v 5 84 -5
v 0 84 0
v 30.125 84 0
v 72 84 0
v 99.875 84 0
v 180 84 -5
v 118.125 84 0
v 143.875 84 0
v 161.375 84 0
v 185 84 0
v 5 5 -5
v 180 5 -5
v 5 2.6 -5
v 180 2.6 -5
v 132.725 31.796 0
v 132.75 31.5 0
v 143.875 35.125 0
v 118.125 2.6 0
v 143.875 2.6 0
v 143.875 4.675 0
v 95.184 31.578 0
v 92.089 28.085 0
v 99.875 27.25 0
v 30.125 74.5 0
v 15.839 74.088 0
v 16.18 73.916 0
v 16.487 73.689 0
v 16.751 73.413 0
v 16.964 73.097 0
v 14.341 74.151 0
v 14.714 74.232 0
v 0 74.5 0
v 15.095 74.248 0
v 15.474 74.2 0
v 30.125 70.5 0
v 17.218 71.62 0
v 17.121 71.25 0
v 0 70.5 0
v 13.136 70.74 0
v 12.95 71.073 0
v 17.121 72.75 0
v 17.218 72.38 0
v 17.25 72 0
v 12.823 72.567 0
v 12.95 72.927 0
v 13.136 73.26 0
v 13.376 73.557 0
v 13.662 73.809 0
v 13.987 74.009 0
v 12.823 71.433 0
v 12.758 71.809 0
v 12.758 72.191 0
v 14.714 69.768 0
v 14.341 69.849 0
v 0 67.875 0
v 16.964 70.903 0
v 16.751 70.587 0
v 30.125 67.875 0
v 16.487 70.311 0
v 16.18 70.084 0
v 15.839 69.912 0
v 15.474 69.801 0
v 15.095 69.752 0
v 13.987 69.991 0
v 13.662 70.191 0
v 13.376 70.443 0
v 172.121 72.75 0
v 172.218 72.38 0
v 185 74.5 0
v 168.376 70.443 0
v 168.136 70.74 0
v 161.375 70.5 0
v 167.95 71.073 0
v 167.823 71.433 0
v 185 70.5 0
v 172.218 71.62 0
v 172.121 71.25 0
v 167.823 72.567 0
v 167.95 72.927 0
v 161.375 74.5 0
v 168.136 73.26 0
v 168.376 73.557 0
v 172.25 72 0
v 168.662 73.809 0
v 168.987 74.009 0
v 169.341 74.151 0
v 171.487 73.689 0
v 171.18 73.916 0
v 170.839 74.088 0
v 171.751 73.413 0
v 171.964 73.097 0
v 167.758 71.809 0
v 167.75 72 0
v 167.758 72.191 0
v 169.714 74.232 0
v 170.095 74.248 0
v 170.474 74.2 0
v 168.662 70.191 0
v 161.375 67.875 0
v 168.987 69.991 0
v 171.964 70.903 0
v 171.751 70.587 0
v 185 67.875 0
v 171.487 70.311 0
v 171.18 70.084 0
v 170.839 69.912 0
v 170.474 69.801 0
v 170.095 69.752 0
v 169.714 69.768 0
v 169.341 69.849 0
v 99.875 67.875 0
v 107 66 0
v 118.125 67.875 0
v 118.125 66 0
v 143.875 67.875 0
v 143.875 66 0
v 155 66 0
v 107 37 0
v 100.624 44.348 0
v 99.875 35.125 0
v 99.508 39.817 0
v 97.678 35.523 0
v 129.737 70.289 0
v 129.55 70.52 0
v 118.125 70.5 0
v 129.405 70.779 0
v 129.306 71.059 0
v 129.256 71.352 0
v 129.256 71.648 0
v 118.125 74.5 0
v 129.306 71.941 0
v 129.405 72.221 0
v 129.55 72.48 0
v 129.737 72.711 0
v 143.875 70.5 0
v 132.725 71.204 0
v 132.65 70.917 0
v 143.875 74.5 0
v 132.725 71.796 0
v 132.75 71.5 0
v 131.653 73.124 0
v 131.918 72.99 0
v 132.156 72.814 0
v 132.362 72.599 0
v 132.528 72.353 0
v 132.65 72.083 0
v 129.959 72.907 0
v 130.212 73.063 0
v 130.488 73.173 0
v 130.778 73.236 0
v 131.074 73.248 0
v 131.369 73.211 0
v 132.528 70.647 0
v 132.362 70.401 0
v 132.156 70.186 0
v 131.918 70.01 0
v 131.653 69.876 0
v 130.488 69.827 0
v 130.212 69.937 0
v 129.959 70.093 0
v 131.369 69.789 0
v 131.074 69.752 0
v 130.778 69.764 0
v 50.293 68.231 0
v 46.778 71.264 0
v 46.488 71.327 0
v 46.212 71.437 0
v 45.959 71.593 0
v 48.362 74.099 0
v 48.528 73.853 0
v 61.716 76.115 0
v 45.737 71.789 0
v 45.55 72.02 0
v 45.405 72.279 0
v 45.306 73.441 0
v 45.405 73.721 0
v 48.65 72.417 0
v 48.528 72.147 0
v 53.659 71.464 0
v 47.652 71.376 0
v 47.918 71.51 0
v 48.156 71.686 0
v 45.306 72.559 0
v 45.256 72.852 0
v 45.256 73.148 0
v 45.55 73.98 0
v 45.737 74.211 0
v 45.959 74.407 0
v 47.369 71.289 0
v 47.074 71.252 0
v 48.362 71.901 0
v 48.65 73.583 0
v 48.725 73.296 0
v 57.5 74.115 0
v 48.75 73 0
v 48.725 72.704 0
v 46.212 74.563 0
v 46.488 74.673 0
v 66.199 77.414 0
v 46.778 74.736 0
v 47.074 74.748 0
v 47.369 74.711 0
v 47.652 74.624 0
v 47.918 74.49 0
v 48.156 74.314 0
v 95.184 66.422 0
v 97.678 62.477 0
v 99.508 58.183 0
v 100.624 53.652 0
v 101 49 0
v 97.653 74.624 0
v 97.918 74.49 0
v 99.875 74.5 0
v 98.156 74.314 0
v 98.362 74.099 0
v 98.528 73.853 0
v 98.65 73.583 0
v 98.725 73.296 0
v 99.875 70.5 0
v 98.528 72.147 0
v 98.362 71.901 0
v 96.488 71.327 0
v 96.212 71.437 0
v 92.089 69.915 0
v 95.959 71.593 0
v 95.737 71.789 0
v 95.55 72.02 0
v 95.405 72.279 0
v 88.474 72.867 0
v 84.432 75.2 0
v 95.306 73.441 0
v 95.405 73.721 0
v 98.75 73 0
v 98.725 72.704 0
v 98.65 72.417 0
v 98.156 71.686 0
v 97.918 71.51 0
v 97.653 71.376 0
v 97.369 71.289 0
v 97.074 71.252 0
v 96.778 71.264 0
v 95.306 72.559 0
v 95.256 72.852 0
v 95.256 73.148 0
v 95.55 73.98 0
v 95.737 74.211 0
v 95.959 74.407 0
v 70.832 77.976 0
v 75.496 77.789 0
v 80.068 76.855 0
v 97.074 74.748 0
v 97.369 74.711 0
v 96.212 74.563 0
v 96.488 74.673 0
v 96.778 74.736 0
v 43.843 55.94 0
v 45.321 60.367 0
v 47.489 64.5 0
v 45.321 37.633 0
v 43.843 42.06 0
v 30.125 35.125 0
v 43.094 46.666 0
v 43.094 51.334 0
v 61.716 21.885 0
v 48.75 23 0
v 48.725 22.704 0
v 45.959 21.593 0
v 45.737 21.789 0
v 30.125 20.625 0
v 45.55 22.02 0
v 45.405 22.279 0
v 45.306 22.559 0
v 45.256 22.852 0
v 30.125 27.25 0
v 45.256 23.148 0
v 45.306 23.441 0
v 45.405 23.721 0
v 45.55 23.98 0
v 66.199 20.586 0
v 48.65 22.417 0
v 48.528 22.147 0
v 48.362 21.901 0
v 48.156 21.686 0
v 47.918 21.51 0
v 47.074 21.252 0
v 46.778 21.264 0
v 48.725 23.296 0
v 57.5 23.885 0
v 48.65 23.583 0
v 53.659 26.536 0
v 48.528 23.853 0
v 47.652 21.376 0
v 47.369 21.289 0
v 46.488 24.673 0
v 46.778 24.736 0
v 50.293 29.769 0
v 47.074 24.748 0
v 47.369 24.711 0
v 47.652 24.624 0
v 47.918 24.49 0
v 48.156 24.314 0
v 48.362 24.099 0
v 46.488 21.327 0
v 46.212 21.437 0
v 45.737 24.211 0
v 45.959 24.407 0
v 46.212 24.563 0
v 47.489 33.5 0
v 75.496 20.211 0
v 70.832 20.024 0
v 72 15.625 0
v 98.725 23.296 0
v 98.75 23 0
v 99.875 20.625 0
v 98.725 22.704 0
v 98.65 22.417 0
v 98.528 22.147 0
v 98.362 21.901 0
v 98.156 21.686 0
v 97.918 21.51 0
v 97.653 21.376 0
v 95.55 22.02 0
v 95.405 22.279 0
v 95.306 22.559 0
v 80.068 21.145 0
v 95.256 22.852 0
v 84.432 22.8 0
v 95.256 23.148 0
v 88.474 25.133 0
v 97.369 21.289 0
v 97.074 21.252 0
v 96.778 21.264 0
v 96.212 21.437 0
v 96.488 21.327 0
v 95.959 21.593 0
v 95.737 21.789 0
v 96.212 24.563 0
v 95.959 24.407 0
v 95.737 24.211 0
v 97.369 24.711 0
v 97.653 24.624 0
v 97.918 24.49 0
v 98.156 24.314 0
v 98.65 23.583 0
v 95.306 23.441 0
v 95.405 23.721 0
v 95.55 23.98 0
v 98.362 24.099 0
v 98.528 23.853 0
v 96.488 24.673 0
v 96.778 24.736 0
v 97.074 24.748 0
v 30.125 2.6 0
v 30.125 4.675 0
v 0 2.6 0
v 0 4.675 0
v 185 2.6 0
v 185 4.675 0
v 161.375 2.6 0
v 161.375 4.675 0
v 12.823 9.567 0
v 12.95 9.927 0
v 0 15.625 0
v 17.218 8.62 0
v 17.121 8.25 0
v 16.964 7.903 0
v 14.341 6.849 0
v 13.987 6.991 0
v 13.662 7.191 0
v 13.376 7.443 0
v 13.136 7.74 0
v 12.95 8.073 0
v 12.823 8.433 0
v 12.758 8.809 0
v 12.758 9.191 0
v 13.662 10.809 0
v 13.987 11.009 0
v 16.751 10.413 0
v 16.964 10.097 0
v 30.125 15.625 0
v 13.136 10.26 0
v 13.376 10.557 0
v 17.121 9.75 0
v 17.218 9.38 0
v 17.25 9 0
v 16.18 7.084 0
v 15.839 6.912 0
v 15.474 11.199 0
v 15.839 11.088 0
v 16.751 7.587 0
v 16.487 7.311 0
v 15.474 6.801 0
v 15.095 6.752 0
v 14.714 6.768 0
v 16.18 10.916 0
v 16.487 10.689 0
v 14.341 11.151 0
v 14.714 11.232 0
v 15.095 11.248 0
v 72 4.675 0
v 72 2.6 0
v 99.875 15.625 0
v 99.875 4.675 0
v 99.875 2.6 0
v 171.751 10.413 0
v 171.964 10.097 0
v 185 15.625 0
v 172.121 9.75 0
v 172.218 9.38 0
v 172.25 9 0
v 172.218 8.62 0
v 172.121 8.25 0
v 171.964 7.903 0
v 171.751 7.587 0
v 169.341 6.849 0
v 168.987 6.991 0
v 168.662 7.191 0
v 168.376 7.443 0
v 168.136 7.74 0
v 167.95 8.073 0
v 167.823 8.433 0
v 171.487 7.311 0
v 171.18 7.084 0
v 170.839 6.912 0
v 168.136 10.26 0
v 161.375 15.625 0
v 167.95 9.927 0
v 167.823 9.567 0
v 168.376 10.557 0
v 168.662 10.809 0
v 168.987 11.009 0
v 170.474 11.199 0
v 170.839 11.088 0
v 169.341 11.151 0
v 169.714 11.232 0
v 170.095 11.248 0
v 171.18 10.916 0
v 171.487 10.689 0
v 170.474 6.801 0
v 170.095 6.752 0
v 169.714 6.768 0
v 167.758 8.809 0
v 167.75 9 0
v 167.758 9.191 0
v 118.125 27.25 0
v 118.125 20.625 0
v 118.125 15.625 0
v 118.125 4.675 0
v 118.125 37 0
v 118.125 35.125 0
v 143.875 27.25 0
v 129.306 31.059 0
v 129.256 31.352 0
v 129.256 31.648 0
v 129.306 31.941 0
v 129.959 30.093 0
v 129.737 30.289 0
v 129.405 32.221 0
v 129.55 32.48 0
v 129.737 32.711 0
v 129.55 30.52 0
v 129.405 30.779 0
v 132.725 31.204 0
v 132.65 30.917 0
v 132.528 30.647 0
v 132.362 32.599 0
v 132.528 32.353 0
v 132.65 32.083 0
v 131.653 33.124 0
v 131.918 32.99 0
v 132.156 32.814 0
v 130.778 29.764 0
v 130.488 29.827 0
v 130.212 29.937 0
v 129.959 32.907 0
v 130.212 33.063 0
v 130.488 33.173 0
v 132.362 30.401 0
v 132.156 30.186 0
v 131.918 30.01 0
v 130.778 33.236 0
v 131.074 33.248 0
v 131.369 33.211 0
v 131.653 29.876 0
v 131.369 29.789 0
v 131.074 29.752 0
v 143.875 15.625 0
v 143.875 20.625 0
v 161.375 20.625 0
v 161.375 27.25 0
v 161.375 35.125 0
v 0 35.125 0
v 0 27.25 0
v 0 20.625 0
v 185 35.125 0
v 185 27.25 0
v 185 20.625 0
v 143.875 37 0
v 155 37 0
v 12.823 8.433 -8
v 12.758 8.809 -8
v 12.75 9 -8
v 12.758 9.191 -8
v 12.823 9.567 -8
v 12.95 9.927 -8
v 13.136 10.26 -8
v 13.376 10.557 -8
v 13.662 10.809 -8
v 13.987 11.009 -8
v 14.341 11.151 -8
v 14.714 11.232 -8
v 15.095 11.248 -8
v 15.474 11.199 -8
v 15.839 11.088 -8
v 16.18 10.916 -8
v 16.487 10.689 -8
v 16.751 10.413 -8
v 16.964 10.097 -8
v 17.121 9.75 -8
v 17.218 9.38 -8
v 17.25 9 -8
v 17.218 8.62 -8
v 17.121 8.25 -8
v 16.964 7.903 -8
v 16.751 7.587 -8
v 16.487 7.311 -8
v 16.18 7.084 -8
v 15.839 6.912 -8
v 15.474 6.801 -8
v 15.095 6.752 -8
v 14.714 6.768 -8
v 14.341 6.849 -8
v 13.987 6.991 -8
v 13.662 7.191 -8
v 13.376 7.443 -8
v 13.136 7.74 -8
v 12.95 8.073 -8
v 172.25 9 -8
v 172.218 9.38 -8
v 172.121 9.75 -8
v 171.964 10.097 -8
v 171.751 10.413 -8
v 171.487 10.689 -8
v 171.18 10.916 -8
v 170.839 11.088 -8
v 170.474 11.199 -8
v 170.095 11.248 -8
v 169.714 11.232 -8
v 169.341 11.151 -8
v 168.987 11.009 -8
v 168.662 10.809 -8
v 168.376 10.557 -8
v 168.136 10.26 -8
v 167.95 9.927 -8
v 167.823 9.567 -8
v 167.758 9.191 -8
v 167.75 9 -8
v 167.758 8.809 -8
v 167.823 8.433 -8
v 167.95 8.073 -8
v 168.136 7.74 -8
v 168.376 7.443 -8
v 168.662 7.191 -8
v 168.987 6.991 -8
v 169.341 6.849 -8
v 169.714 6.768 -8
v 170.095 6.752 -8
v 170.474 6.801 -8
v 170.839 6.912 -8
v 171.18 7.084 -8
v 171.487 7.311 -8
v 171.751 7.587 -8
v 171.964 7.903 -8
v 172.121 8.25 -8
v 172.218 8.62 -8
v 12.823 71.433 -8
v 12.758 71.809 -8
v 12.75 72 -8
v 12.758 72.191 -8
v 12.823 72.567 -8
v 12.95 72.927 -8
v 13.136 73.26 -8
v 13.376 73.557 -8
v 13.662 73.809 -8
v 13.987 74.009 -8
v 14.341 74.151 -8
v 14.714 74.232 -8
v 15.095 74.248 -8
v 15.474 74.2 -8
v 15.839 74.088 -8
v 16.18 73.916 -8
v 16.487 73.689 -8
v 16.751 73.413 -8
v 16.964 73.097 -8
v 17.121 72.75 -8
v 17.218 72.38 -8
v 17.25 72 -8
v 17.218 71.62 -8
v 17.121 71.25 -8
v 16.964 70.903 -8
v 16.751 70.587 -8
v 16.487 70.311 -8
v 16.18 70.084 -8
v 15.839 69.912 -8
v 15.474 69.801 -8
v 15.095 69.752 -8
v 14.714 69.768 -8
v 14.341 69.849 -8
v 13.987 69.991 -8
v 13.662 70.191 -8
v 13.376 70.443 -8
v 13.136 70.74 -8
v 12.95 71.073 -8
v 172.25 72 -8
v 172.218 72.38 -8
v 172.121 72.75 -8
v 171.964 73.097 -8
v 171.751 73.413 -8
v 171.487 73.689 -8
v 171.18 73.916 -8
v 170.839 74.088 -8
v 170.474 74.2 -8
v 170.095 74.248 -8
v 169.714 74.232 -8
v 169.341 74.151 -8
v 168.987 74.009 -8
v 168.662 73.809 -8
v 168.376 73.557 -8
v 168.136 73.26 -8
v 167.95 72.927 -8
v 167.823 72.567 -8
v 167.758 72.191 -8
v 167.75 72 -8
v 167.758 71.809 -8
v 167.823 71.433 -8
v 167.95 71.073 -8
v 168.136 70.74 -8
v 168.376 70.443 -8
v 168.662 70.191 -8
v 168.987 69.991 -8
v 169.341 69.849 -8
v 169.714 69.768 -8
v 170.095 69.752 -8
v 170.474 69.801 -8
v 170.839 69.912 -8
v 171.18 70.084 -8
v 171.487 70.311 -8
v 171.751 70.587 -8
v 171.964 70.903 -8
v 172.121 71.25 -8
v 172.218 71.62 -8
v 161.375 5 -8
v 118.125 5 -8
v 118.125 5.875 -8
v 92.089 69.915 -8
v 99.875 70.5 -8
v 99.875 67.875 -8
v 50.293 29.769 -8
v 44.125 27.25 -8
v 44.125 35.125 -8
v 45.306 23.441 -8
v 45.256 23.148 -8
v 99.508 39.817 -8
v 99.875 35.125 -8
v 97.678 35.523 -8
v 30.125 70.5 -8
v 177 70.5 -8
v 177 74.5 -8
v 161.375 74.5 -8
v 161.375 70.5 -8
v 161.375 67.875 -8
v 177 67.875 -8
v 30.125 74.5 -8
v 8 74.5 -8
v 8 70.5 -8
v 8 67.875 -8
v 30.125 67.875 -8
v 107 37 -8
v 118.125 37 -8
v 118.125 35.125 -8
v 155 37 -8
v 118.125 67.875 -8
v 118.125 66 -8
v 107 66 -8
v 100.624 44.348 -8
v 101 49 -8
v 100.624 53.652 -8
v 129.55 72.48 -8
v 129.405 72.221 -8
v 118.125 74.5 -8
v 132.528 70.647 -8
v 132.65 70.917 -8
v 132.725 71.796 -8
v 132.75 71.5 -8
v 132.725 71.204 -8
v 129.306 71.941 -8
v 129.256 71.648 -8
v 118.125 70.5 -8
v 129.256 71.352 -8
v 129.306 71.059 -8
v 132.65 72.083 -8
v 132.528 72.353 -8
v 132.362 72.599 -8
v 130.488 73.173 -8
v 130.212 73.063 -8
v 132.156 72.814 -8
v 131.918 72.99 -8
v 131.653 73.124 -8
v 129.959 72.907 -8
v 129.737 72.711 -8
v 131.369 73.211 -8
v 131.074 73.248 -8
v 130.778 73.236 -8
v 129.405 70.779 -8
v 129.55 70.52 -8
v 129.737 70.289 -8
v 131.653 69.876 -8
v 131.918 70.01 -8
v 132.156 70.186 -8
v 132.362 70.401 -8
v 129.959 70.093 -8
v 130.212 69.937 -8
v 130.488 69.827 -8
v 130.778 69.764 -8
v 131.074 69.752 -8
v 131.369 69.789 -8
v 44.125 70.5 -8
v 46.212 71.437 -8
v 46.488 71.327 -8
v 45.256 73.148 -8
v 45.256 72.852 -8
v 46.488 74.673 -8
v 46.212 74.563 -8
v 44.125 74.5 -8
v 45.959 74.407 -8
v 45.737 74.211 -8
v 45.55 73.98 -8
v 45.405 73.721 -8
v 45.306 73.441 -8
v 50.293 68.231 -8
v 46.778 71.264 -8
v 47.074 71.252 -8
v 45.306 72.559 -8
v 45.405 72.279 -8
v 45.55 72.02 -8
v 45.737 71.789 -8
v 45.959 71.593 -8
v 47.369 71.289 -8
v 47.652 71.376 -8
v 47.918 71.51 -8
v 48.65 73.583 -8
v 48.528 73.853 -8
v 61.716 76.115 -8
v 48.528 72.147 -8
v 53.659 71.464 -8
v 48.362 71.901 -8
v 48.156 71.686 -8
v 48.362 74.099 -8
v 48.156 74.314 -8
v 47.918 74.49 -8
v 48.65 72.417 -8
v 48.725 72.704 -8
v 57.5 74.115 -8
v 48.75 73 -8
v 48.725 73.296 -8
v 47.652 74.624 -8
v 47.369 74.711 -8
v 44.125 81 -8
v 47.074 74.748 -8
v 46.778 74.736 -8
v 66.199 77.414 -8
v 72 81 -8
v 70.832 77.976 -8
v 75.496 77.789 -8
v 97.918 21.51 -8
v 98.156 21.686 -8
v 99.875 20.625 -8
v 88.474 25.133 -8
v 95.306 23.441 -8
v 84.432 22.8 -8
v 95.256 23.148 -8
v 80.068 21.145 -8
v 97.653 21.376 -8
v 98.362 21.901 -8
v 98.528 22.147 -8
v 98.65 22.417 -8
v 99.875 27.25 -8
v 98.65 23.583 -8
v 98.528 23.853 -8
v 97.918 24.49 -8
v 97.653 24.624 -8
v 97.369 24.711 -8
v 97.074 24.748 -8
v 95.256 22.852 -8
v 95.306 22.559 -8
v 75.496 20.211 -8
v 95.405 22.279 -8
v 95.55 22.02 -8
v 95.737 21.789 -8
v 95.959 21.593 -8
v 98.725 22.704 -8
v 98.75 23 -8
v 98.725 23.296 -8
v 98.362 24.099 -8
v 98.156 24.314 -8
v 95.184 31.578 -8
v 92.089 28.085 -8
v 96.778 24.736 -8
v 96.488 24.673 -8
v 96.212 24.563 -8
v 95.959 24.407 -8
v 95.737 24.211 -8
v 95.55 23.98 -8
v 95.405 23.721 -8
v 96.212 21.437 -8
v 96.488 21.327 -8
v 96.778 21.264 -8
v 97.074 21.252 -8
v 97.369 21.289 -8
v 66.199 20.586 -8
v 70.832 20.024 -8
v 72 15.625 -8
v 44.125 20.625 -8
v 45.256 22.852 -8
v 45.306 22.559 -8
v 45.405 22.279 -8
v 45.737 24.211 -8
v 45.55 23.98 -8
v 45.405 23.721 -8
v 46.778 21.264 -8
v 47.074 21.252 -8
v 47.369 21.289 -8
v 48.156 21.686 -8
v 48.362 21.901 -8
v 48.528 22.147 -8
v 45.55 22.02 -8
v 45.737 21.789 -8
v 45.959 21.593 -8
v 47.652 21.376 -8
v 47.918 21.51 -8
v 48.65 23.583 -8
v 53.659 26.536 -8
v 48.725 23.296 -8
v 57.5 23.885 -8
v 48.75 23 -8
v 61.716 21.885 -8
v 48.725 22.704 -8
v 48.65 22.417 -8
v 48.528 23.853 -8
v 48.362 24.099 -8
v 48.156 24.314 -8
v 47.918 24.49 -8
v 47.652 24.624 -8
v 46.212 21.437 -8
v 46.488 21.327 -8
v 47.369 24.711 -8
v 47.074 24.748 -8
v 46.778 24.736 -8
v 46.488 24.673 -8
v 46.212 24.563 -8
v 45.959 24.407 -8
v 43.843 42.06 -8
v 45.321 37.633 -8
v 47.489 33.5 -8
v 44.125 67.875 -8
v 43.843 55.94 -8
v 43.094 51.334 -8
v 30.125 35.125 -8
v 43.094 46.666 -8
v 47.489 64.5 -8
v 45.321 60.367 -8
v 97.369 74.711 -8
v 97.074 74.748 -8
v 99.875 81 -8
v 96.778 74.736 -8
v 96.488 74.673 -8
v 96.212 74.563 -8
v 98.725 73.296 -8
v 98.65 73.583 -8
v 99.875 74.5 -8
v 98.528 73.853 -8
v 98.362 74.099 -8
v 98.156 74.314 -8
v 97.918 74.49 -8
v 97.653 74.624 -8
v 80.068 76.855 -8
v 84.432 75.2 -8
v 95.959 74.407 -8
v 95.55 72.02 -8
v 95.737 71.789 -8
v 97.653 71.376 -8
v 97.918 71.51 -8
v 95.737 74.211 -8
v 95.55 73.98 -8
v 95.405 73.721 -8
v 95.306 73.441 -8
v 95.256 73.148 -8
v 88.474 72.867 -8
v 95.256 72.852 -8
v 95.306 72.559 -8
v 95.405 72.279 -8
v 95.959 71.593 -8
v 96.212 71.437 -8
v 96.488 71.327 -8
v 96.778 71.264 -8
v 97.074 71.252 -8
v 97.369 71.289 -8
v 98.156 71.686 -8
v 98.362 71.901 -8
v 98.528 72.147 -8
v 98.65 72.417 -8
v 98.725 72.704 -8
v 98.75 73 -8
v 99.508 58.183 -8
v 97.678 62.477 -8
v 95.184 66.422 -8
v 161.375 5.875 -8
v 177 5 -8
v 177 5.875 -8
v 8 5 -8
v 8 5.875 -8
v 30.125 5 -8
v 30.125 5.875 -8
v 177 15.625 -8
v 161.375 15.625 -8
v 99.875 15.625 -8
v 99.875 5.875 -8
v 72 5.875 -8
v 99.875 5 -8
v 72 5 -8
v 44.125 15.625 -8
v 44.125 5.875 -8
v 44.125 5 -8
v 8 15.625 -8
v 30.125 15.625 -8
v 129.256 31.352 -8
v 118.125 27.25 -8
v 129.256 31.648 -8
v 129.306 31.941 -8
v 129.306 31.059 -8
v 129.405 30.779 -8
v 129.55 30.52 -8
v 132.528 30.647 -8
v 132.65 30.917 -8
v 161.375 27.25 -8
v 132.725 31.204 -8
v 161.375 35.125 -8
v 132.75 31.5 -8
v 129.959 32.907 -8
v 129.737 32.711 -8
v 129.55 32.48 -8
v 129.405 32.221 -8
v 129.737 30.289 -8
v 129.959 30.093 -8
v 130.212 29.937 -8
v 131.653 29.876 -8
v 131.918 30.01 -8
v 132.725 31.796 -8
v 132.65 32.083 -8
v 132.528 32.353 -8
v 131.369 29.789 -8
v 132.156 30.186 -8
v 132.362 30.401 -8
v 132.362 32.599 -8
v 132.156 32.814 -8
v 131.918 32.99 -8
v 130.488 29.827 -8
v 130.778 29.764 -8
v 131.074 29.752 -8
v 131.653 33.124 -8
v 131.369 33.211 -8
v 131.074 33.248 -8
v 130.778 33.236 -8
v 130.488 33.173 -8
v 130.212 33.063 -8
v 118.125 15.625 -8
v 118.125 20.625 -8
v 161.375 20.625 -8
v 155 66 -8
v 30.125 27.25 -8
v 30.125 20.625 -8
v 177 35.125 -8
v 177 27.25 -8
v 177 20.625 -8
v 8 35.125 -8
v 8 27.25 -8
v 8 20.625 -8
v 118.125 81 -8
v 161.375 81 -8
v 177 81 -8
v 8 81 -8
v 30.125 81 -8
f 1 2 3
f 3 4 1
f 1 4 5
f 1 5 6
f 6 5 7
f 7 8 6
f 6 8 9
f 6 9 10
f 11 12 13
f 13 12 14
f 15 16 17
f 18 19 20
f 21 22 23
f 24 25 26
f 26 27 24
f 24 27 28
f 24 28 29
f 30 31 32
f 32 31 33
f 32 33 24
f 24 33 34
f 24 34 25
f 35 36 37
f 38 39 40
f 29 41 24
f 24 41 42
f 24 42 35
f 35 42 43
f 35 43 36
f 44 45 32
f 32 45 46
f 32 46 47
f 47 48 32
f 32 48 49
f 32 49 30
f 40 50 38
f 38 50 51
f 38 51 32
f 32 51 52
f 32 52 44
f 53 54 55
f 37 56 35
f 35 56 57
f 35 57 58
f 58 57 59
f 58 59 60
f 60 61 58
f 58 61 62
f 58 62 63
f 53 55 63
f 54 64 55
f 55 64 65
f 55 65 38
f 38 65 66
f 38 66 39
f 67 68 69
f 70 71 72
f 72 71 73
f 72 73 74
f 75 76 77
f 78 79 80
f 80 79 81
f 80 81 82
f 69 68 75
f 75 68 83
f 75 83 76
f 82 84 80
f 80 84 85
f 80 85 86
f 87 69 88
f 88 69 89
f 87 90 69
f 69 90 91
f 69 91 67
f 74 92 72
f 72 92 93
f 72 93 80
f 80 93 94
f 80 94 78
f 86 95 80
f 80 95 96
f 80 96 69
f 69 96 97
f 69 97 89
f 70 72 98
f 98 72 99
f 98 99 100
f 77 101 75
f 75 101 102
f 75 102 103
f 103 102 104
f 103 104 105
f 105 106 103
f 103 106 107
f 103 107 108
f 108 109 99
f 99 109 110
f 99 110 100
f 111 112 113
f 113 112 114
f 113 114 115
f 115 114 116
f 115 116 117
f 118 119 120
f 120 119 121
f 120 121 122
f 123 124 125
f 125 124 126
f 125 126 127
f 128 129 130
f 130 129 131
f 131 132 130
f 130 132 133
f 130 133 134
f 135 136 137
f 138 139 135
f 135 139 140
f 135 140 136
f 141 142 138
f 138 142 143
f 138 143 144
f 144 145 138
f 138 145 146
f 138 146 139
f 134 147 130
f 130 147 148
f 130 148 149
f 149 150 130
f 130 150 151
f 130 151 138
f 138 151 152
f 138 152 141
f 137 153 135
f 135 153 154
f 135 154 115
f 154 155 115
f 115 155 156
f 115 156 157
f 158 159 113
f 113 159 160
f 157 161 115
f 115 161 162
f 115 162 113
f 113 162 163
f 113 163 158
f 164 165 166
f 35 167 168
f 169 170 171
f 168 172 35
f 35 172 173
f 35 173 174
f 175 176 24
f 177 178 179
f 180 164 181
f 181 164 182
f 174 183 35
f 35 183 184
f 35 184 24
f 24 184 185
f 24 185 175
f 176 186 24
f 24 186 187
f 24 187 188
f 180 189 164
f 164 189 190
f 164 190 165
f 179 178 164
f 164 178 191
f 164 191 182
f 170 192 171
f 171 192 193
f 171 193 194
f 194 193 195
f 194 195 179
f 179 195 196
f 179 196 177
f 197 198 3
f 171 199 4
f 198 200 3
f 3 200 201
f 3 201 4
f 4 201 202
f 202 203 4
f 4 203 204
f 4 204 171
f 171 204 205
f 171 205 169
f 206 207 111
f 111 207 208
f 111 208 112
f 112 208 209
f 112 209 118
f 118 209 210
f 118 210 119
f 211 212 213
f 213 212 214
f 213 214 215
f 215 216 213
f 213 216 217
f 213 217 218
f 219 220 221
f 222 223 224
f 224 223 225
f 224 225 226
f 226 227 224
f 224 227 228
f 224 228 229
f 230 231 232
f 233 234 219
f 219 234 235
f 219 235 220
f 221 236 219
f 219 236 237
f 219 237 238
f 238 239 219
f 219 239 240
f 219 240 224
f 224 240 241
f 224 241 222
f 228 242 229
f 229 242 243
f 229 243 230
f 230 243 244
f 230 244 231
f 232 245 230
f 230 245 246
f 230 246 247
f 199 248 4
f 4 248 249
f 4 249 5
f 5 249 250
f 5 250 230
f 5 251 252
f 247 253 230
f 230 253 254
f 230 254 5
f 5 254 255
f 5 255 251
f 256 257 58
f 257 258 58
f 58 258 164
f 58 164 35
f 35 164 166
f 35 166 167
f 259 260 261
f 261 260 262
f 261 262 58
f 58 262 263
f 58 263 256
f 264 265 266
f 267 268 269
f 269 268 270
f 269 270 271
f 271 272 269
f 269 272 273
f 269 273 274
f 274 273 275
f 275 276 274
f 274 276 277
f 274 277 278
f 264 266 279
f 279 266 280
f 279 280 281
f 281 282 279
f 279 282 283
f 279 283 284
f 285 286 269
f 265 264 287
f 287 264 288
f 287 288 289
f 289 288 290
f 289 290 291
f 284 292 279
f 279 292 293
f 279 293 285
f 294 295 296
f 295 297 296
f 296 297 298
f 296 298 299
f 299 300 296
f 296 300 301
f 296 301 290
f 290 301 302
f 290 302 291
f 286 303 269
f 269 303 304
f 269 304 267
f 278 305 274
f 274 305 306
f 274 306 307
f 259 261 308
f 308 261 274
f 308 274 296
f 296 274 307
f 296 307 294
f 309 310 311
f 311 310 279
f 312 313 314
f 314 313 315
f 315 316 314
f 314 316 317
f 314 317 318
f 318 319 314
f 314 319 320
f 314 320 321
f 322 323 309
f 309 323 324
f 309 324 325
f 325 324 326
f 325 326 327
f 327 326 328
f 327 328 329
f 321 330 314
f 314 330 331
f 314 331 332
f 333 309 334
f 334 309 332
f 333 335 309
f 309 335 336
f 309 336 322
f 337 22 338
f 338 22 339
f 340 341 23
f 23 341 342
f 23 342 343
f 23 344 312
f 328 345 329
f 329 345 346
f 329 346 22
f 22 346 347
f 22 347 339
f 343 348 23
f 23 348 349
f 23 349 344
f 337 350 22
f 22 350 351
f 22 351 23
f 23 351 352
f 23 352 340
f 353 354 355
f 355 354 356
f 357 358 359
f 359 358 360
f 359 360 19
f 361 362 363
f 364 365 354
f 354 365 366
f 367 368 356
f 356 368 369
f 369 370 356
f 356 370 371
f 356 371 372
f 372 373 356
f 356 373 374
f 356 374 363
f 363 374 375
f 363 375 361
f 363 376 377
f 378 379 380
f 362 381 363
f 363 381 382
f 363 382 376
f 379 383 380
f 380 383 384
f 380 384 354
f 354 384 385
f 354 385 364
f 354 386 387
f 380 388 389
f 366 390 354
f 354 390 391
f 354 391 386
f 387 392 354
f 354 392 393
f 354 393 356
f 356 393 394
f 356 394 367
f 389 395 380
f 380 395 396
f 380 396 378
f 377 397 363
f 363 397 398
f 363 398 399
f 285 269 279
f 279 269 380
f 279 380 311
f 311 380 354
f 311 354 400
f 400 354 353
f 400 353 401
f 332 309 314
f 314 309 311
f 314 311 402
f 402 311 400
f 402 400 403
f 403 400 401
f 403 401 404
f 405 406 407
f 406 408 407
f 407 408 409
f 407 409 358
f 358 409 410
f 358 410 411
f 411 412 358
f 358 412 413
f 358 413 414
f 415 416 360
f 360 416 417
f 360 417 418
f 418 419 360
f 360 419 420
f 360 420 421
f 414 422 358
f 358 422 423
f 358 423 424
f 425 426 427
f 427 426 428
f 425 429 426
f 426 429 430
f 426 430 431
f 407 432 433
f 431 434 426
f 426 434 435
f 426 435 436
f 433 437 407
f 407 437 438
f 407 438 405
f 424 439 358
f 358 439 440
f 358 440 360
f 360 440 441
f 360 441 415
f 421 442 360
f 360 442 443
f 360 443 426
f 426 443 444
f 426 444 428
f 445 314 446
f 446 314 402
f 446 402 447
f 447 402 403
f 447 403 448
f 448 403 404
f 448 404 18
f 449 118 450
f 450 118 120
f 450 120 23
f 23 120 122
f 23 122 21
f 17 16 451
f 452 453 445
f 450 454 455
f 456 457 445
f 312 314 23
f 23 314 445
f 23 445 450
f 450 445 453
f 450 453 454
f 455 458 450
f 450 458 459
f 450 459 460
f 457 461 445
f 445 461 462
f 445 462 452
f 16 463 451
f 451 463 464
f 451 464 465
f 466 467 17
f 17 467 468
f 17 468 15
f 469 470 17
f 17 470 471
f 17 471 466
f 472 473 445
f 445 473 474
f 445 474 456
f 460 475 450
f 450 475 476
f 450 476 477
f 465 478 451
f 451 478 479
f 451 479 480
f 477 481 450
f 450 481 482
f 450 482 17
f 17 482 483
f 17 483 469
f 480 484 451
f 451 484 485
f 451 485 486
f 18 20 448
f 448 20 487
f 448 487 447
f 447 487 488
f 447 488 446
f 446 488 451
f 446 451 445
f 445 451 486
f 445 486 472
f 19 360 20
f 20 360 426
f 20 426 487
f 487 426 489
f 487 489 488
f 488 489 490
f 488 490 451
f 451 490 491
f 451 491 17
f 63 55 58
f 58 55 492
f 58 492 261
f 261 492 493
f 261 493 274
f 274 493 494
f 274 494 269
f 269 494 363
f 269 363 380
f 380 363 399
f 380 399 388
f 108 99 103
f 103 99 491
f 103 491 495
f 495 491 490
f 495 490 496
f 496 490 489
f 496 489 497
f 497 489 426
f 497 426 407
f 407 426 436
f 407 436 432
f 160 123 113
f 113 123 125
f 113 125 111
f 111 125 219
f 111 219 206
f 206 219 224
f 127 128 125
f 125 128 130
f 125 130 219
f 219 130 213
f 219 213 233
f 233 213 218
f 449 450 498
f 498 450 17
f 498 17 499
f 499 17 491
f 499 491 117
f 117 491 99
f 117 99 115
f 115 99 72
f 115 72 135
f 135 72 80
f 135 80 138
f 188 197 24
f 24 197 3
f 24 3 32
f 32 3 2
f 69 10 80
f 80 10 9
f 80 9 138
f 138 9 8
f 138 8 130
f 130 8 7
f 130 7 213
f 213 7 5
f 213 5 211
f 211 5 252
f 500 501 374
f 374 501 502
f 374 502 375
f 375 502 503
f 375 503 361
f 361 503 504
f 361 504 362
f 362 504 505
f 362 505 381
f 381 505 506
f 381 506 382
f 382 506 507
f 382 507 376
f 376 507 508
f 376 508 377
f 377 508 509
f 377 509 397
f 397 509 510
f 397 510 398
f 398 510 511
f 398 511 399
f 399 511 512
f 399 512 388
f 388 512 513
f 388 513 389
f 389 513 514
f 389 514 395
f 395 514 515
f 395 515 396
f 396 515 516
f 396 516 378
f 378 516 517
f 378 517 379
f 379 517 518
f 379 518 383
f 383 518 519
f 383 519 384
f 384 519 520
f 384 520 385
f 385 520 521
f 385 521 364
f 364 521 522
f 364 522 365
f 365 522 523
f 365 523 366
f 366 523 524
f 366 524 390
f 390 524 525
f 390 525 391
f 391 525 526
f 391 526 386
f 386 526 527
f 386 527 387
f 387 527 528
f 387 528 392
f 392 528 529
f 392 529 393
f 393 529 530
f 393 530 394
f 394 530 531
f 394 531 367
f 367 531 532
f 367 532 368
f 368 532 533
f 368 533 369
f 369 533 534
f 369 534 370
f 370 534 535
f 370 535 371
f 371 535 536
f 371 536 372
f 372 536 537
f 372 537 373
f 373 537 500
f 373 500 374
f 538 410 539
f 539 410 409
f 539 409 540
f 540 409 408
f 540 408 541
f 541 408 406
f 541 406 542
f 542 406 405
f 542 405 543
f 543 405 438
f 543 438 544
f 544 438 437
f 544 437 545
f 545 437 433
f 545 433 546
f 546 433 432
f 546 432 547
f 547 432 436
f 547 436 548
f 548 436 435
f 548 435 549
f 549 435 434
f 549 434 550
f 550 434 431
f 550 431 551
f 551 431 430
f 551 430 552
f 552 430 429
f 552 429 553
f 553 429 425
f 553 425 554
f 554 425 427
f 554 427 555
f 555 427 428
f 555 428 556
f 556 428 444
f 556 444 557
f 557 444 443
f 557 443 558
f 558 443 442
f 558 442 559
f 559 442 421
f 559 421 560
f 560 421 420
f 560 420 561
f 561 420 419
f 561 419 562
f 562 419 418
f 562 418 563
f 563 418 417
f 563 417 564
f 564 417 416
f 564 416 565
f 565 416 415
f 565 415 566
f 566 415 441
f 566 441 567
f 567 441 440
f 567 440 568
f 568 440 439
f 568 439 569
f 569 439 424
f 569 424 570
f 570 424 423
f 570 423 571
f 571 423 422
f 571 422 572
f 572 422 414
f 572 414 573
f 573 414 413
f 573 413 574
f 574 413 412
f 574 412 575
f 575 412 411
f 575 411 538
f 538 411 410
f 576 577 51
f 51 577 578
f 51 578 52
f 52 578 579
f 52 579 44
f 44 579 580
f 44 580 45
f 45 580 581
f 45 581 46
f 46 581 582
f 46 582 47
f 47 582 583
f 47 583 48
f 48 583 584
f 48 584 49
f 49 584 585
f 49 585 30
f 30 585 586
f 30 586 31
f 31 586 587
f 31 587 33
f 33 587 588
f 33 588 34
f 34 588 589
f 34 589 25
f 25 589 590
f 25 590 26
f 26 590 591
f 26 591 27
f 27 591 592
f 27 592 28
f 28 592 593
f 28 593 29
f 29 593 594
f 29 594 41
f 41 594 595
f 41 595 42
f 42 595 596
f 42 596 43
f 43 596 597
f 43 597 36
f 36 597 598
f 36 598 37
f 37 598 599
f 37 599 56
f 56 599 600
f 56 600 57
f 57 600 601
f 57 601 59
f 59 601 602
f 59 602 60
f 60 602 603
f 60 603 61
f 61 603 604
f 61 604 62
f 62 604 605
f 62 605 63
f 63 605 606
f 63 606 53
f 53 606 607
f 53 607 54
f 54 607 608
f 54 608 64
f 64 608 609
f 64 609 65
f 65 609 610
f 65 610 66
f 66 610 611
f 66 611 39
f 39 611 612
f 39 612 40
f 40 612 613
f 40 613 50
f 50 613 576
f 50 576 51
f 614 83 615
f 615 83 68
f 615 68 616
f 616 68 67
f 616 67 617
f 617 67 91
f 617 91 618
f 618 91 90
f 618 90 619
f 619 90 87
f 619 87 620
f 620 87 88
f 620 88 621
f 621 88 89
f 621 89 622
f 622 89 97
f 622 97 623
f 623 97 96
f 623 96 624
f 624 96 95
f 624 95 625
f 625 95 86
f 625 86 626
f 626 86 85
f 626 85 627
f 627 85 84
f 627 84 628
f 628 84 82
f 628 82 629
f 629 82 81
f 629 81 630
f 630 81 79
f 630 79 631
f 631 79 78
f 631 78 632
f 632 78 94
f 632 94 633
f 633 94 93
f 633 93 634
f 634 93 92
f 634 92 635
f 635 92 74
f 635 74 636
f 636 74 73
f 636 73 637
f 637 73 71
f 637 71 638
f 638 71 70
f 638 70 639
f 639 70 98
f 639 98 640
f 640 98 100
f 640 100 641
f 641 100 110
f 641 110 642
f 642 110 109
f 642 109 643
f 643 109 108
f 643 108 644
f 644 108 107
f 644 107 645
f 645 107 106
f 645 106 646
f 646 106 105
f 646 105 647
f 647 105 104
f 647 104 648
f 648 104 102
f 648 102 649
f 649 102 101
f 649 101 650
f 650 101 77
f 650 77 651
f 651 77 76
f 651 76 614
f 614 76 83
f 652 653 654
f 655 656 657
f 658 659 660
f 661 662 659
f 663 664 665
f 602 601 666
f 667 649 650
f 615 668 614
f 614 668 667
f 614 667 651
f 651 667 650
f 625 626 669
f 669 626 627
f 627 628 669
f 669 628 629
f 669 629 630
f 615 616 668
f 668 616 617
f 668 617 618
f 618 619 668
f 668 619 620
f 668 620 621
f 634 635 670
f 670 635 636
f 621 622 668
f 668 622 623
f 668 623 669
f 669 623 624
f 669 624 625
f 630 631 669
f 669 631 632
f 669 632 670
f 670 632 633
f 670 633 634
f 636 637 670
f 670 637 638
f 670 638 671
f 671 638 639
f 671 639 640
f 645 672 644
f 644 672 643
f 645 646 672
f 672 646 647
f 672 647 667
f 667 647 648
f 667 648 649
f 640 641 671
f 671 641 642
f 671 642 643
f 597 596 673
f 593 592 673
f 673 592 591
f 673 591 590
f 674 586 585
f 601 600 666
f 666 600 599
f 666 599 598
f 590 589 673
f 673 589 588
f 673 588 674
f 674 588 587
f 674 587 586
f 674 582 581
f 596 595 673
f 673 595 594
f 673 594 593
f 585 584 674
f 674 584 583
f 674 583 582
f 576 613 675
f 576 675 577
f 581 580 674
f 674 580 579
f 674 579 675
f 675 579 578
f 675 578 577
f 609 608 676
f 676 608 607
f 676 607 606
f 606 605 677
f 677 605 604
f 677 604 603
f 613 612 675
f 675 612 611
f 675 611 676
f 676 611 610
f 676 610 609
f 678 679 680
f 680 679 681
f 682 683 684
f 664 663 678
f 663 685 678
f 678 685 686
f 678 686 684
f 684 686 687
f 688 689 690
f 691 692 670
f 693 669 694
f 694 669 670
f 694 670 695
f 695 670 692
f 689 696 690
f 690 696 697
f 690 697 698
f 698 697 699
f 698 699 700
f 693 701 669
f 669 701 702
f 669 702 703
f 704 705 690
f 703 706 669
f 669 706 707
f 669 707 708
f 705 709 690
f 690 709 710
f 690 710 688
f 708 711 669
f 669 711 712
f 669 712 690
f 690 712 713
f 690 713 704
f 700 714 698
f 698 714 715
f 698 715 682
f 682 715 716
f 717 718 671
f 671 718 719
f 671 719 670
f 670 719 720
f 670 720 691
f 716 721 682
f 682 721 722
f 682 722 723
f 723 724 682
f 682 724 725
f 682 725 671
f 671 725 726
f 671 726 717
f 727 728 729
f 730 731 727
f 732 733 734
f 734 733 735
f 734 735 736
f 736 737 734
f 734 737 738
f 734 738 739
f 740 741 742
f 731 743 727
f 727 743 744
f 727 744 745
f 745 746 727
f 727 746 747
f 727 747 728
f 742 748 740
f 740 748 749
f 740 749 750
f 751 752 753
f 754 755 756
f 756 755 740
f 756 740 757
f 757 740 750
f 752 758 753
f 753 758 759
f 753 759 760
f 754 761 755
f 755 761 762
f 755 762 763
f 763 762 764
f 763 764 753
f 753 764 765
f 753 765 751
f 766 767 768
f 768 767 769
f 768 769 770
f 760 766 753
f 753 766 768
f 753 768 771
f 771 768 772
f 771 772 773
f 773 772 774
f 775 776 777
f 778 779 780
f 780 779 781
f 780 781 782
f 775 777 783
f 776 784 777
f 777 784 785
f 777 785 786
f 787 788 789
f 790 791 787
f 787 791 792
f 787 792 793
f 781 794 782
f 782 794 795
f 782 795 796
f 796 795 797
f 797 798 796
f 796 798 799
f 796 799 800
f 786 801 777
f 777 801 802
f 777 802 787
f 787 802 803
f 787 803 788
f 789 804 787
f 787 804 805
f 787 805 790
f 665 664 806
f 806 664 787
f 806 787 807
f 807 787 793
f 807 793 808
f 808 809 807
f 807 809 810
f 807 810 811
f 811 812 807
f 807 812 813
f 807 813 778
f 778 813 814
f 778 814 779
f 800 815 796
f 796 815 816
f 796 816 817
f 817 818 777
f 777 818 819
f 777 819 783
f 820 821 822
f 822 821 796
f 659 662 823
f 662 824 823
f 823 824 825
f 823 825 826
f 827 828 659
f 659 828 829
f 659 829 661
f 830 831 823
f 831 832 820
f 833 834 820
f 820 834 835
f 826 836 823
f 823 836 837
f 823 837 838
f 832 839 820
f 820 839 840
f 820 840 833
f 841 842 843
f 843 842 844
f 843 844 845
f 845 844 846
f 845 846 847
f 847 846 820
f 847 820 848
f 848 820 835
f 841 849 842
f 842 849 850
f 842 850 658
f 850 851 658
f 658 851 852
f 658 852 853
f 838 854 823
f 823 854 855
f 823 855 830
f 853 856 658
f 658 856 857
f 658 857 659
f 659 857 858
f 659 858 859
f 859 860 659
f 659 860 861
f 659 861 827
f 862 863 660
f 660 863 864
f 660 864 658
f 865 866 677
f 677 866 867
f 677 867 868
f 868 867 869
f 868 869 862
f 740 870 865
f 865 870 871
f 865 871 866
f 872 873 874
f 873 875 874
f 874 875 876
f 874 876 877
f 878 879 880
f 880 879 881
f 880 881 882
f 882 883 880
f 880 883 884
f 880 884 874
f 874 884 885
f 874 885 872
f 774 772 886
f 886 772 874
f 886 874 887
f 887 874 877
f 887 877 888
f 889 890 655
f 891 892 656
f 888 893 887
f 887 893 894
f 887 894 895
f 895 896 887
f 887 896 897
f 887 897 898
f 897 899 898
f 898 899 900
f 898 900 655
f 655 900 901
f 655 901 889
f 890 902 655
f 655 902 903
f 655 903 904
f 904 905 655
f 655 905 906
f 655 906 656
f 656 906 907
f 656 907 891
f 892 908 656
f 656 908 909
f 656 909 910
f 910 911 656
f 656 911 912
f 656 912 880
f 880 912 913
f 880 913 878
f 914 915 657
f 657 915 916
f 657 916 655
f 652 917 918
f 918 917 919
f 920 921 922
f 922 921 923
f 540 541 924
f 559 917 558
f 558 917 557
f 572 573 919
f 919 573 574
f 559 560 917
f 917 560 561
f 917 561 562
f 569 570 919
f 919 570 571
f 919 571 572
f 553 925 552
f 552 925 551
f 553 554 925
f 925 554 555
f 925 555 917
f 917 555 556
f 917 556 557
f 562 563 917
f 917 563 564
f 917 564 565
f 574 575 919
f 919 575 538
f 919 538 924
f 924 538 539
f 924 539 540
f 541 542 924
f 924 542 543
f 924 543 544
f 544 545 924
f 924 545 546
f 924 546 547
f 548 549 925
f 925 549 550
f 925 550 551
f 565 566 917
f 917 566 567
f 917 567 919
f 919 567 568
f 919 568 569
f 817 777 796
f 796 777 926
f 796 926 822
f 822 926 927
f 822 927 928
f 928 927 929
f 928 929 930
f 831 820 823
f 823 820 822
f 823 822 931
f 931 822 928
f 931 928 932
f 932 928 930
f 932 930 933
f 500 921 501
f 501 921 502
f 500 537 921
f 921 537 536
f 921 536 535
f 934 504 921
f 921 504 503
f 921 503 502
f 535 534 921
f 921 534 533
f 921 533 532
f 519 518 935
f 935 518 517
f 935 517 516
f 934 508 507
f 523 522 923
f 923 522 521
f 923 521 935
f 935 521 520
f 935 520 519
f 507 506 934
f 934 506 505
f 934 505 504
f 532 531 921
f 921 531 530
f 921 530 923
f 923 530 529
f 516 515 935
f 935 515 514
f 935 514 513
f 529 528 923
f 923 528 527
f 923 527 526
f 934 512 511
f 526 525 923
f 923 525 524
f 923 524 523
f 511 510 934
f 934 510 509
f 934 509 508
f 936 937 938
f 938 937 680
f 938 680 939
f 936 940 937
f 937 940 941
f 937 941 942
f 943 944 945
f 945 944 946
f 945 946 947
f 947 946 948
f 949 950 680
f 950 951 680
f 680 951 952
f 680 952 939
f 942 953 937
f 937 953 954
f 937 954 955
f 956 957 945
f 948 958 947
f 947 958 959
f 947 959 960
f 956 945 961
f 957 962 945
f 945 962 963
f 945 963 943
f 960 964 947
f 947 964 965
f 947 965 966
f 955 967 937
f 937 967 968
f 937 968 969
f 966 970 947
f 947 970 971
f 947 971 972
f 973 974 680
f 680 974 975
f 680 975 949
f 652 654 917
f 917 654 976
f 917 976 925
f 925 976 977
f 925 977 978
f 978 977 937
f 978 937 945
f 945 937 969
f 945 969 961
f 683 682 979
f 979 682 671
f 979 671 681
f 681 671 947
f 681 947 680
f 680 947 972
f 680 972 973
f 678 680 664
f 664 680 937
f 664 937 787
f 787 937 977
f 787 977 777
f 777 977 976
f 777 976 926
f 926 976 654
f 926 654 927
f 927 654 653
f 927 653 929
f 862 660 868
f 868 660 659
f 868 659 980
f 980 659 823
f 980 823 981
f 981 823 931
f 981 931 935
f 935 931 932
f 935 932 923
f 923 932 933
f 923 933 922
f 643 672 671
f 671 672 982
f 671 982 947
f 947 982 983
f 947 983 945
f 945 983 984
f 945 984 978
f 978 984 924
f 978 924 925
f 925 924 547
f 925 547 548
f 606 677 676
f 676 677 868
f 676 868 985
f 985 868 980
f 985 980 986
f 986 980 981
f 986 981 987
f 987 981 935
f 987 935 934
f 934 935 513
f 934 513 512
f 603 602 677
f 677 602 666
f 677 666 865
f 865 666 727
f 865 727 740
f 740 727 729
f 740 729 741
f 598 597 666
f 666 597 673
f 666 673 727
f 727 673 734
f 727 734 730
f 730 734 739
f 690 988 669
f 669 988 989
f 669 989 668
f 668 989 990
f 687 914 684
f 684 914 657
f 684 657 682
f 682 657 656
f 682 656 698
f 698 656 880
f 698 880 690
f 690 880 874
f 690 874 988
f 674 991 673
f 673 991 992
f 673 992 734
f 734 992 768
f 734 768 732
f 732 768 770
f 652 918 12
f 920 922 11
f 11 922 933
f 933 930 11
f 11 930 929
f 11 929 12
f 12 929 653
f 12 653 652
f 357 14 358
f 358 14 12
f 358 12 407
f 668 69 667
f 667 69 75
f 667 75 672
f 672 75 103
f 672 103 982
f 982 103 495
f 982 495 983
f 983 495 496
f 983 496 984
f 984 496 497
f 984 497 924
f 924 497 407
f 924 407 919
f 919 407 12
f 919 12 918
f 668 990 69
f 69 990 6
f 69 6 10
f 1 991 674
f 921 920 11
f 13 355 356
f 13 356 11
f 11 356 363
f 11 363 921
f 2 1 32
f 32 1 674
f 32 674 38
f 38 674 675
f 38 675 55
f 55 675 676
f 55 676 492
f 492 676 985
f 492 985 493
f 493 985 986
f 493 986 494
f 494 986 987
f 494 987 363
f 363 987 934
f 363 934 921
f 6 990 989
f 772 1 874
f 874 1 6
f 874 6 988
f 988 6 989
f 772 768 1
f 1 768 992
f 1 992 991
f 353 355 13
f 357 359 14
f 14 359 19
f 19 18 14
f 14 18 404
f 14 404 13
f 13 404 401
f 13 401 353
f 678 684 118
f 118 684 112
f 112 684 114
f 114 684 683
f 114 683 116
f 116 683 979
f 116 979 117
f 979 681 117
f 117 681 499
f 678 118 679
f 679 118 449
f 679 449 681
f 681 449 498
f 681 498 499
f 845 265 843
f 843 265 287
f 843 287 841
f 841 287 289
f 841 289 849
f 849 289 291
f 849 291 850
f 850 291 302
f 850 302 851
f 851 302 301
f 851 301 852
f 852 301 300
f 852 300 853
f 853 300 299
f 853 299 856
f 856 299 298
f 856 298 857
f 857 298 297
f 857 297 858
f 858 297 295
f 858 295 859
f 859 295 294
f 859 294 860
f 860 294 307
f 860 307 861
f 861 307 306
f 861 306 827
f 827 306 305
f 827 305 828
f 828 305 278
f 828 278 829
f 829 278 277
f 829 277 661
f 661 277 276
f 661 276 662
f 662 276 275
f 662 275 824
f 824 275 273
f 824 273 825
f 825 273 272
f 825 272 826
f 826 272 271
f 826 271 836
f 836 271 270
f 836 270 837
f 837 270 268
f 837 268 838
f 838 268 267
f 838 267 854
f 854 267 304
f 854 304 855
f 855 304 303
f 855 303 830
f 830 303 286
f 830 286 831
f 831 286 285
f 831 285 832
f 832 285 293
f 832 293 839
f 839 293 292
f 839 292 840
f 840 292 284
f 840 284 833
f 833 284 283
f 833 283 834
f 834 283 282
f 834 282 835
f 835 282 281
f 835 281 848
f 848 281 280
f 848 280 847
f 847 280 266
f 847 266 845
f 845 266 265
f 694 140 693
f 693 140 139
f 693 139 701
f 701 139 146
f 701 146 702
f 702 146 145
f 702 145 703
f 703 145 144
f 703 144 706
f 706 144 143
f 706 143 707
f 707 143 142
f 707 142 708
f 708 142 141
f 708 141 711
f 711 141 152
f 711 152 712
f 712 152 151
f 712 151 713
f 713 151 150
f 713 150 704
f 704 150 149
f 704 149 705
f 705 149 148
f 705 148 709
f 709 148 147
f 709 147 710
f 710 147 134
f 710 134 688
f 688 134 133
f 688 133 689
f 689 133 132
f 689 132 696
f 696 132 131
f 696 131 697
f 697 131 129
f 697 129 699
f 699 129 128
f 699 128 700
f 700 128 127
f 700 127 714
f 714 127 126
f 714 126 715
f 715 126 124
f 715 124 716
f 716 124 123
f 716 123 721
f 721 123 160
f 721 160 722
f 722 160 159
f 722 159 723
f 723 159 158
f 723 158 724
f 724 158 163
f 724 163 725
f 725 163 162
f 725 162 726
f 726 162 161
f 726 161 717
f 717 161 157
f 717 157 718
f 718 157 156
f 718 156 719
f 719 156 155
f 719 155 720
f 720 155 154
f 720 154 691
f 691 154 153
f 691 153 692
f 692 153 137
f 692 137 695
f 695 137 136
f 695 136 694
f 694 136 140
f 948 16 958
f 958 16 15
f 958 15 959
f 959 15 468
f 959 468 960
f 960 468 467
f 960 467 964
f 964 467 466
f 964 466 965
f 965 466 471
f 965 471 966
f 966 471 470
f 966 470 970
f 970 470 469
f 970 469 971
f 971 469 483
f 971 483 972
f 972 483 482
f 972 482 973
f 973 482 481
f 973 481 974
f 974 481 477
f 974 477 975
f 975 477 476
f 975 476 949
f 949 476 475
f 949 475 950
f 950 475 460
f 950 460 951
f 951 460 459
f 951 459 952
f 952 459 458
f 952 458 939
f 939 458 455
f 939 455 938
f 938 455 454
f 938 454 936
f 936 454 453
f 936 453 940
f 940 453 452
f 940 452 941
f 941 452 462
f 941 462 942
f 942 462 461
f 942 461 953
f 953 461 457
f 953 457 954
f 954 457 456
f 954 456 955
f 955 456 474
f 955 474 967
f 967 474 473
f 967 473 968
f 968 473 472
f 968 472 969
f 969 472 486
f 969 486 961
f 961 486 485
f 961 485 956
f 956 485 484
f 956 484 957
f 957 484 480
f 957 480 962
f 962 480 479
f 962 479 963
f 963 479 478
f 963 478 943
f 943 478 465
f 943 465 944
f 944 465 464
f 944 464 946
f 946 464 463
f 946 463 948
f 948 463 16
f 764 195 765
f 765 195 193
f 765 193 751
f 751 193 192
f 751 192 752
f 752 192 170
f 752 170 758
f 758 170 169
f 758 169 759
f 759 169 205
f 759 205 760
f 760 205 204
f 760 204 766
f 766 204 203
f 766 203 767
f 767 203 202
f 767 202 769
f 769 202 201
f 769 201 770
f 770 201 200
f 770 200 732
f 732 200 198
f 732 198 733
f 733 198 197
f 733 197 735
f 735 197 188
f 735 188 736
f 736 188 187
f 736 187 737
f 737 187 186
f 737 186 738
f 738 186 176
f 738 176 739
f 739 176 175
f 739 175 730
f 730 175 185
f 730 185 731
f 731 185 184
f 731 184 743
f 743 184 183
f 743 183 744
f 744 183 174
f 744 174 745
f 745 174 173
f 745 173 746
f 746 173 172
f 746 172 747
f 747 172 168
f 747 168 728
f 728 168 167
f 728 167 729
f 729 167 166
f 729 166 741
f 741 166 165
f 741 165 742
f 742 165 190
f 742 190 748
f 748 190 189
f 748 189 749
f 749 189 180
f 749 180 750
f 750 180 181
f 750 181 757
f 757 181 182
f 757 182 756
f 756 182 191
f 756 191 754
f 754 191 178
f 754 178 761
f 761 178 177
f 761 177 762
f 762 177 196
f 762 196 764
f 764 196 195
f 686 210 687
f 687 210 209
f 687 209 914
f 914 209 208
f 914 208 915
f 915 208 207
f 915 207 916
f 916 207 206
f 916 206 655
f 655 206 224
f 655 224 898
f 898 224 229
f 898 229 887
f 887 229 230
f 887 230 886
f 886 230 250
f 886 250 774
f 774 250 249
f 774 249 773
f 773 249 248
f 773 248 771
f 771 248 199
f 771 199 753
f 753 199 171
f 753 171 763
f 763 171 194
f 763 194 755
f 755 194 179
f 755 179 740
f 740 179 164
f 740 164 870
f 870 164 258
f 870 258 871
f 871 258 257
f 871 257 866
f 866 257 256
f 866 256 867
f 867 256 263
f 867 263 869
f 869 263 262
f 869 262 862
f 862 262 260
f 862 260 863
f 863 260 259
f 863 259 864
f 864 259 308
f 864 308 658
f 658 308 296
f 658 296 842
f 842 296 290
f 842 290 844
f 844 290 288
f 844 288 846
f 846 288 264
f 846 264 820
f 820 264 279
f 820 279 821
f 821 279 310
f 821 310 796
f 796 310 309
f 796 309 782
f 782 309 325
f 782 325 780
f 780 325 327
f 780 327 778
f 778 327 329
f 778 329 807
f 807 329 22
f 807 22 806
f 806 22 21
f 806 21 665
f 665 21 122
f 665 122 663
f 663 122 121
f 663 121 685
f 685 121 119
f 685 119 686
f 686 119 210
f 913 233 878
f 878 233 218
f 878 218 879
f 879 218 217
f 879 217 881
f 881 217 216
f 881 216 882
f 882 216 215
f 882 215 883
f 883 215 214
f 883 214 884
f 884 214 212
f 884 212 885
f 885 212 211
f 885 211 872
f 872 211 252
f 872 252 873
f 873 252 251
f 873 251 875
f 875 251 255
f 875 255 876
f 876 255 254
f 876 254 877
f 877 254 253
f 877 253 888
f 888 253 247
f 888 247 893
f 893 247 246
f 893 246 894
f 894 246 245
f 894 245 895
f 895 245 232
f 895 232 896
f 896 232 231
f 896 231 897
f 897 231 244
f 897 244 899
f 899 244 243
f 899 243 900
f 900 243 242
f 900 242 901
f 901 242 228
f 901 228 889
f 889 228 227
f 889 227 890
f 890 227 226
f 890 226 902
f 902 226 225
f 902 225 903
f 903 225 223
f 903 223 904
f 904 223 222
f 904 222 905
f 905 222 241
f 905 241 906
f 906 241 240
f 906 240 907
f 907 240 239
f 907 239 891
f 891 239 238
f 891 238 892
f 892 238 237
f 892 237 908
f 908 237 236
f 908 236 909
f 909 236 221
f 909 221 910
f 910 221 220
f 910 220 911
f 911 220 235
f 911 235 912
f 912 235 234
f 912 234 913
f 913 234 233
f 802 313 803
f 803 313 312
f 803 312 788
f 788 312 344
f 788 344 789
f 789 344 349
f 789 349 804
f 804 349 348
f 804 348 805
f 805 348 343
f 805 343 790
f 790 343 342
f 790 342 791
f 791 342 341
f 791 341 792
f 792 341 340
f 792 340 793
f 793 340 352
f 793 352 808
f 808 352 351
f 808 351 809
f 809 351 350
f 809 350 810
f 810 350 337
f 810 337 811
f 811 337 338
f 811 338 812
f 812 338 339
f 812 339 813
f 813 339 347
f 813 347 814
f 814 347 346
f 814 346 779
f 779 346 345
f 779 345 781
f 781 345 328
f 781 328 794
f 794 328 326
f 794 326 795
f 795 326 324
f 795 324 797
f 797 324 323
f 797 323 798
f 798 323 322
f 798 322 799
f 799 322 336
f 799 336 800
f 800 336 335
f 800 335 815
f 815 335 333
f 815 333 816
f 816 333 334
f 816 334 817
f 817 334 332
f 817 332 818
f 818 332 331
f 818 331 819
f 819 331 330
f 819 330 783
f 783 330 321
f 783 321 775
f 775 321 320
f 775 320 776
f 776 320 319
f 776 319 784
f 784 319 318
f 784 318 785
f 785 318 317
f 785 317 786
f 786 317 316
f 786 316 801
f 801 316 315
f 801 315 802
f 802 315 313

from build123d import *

# Parameters (mm, degrees)
SKETCH1_W           = 185
SKETCH1_H           = 84
SKETCH1_R           = 2.25
BOSS_EXTRUDE1_DEPTH = 5
SKETCH2_W           = 185
SKETCH2_H           = 79
SKETCH2_R           = 2.25
BOSS_EXTRUDE2_DEPTH = 3
CHAMFER1_SIZE       = 8
CHAMFER3_SIZE       = 3
SKETCH3_W           = 7.071067812
SKETCH3_H           = 2.6
CUT_EXTRUDE1_DEPTH  = 221.270985121
SKETCH4_R           = 29
SKETCH4_R_2         = 1.75
SKETCH4_W           = 48
SKETCH4_H           = 29
CUT_EXTRUDE2_DEPTH  = 204.334699449


with BuildPart() as part:
    # Sketch1 → Boss-Extrude1 (new body)
    with BuildSketch(Plane.XY):
        with Locations((92.5, 42)):
            Rectangle(SKETCH1_W, SKETCH1_H)
        with Locations((15, 9)):
            Circle(SKETCH1_R, mode=Mode.SUBTRACT)
        with Locations(Location((170, 9, 0), (0, 0, 180))):
            Circle(SKETCH1_R, mode=Mode.SUBTRACT)
        with Locations((15, 72)):
            Circle(SKETCH1_R, mode=Mode.SUBTRACT)
        with Locations(Location((170, 72, 0), (0, 0, 180))):
            Circle(SKETCH1_R, mode=Mode.SUBTRACT)
    extrude(amount=-BOSS_EXTRUDE1_DEPTH)

    # Sketch2 → Boss-Extrude2 (add)
    with BuildSketch(Plane(origin=(0, 0, -5), x_dir=(-1, 0, 0), z_dir=(0, 0, -1))):
        with Locations((-92.5, 44.5)):
            Rectangle(SKETCH2_W, SKETCH2_H)
        with Locations(Location((-15, 9, 0), (0, 0, 180))):
            Circle(SKETCH2_R, mode=Mode.SUBTRACT)
        with Locations((-170, 9)):
            Circle(SKETCH2_R, mode=Mode.SUBTRACT)
        with Locations(Location((-15, 72, 0), (0, 0, 180))):
            Circle(SKETCH2_R, mode=Mode.SUBTRACT)
        with Locations((-170, 72)):
            Circle(SKETCH2_R, mode=Mode.SUBTRACT)
    extrude(amount=BOSS_EXTRUDE2_DEPTH)

    # Chamfer1
    # the kernel refuses this chamfer: 8 mm, written as the material it takes off along each edge
    with BuildSketch(Plane(origin=(185, -15.573463904, -8), x_dir=(-0.9996219169112968, 0, -0.027495876610586296), z_dir=(0, 1, 0)), Plane(origin=(0, 104.573463904, -8), x_dir=(0.9996219169112968, 0, -0.027495876610586275), z_dir=(0, -1, 0))) as chamfer1_piece_1:
        Polygon((CHAMFER1_SIZE * 0.999621916911, CHAMFER1_SIZE * 0.0274958766106), (-CHAMFER1_SIZE * 0.0274958766106, CHAMFER1_SIZE * 0.999621916911), (0, 0), align=None)
    extrude(amount=120.146927807, mode=Mode.SUBTRACT)

    # Chamfer3
    chamfer3_edges = [part.edges().sort_by_distance(p)[0] for p in [
        (92.5, 84, -8),
    ]]
    chamfer(chamfer3_edges, length=CHAMFER3_SIZE)

    # Sketch3 → Cut-Extrude1 (cut, through all, along a direction that is not the sketch's normal)
    with BuildSketch(Plane(origin=(92.5, 0, -92.5), x_dir=(-0.7071067811865452, 0, -0.7071067811865498), z_dir=(0.7071067811865498, 0, -0.7071067811865452))):
        with Locations((-127.279220614, 1.3)):
            Rectangle(SKETCH3_W, SKETCH3_H)
    extrude(amount=-CUT_EXTRUDE1_DEPTH, dir=(1, 0, 0), mode=Mode.SUBTRACT)

    # Sketch4 → Cut-Extrude2 (cut, through all)
    with BuildSketch(Plane.XY):
        with Locations((72, 49)):
            Circle(SKETCH4_R)
        with Locations((47, 73)):
            Circle(SKETCH4_R_2)
        with Locations((97, 73)):
            Circle(SKETCH4_R_2)
        with Locations((97, 23)):
            Circle(SKETCH4_R_2)
        with Locations((47, 23)):
            Circle(SKETCH4_R_2)
        with Locations((131, 71.5)):
            Circle(SKETCH4_R_2)
        with Locations((131, 31.5)):
            Circle(SKETCH4_R_2)
        with Locations((131, 51.5)):
            Rectangle(SKETCH4_W, SKETCH4_H)
    extrude(amount=-CUT_EXTRUDE2_DEPTH, mode=Mode.SUBTRACT)


solid = part.part
